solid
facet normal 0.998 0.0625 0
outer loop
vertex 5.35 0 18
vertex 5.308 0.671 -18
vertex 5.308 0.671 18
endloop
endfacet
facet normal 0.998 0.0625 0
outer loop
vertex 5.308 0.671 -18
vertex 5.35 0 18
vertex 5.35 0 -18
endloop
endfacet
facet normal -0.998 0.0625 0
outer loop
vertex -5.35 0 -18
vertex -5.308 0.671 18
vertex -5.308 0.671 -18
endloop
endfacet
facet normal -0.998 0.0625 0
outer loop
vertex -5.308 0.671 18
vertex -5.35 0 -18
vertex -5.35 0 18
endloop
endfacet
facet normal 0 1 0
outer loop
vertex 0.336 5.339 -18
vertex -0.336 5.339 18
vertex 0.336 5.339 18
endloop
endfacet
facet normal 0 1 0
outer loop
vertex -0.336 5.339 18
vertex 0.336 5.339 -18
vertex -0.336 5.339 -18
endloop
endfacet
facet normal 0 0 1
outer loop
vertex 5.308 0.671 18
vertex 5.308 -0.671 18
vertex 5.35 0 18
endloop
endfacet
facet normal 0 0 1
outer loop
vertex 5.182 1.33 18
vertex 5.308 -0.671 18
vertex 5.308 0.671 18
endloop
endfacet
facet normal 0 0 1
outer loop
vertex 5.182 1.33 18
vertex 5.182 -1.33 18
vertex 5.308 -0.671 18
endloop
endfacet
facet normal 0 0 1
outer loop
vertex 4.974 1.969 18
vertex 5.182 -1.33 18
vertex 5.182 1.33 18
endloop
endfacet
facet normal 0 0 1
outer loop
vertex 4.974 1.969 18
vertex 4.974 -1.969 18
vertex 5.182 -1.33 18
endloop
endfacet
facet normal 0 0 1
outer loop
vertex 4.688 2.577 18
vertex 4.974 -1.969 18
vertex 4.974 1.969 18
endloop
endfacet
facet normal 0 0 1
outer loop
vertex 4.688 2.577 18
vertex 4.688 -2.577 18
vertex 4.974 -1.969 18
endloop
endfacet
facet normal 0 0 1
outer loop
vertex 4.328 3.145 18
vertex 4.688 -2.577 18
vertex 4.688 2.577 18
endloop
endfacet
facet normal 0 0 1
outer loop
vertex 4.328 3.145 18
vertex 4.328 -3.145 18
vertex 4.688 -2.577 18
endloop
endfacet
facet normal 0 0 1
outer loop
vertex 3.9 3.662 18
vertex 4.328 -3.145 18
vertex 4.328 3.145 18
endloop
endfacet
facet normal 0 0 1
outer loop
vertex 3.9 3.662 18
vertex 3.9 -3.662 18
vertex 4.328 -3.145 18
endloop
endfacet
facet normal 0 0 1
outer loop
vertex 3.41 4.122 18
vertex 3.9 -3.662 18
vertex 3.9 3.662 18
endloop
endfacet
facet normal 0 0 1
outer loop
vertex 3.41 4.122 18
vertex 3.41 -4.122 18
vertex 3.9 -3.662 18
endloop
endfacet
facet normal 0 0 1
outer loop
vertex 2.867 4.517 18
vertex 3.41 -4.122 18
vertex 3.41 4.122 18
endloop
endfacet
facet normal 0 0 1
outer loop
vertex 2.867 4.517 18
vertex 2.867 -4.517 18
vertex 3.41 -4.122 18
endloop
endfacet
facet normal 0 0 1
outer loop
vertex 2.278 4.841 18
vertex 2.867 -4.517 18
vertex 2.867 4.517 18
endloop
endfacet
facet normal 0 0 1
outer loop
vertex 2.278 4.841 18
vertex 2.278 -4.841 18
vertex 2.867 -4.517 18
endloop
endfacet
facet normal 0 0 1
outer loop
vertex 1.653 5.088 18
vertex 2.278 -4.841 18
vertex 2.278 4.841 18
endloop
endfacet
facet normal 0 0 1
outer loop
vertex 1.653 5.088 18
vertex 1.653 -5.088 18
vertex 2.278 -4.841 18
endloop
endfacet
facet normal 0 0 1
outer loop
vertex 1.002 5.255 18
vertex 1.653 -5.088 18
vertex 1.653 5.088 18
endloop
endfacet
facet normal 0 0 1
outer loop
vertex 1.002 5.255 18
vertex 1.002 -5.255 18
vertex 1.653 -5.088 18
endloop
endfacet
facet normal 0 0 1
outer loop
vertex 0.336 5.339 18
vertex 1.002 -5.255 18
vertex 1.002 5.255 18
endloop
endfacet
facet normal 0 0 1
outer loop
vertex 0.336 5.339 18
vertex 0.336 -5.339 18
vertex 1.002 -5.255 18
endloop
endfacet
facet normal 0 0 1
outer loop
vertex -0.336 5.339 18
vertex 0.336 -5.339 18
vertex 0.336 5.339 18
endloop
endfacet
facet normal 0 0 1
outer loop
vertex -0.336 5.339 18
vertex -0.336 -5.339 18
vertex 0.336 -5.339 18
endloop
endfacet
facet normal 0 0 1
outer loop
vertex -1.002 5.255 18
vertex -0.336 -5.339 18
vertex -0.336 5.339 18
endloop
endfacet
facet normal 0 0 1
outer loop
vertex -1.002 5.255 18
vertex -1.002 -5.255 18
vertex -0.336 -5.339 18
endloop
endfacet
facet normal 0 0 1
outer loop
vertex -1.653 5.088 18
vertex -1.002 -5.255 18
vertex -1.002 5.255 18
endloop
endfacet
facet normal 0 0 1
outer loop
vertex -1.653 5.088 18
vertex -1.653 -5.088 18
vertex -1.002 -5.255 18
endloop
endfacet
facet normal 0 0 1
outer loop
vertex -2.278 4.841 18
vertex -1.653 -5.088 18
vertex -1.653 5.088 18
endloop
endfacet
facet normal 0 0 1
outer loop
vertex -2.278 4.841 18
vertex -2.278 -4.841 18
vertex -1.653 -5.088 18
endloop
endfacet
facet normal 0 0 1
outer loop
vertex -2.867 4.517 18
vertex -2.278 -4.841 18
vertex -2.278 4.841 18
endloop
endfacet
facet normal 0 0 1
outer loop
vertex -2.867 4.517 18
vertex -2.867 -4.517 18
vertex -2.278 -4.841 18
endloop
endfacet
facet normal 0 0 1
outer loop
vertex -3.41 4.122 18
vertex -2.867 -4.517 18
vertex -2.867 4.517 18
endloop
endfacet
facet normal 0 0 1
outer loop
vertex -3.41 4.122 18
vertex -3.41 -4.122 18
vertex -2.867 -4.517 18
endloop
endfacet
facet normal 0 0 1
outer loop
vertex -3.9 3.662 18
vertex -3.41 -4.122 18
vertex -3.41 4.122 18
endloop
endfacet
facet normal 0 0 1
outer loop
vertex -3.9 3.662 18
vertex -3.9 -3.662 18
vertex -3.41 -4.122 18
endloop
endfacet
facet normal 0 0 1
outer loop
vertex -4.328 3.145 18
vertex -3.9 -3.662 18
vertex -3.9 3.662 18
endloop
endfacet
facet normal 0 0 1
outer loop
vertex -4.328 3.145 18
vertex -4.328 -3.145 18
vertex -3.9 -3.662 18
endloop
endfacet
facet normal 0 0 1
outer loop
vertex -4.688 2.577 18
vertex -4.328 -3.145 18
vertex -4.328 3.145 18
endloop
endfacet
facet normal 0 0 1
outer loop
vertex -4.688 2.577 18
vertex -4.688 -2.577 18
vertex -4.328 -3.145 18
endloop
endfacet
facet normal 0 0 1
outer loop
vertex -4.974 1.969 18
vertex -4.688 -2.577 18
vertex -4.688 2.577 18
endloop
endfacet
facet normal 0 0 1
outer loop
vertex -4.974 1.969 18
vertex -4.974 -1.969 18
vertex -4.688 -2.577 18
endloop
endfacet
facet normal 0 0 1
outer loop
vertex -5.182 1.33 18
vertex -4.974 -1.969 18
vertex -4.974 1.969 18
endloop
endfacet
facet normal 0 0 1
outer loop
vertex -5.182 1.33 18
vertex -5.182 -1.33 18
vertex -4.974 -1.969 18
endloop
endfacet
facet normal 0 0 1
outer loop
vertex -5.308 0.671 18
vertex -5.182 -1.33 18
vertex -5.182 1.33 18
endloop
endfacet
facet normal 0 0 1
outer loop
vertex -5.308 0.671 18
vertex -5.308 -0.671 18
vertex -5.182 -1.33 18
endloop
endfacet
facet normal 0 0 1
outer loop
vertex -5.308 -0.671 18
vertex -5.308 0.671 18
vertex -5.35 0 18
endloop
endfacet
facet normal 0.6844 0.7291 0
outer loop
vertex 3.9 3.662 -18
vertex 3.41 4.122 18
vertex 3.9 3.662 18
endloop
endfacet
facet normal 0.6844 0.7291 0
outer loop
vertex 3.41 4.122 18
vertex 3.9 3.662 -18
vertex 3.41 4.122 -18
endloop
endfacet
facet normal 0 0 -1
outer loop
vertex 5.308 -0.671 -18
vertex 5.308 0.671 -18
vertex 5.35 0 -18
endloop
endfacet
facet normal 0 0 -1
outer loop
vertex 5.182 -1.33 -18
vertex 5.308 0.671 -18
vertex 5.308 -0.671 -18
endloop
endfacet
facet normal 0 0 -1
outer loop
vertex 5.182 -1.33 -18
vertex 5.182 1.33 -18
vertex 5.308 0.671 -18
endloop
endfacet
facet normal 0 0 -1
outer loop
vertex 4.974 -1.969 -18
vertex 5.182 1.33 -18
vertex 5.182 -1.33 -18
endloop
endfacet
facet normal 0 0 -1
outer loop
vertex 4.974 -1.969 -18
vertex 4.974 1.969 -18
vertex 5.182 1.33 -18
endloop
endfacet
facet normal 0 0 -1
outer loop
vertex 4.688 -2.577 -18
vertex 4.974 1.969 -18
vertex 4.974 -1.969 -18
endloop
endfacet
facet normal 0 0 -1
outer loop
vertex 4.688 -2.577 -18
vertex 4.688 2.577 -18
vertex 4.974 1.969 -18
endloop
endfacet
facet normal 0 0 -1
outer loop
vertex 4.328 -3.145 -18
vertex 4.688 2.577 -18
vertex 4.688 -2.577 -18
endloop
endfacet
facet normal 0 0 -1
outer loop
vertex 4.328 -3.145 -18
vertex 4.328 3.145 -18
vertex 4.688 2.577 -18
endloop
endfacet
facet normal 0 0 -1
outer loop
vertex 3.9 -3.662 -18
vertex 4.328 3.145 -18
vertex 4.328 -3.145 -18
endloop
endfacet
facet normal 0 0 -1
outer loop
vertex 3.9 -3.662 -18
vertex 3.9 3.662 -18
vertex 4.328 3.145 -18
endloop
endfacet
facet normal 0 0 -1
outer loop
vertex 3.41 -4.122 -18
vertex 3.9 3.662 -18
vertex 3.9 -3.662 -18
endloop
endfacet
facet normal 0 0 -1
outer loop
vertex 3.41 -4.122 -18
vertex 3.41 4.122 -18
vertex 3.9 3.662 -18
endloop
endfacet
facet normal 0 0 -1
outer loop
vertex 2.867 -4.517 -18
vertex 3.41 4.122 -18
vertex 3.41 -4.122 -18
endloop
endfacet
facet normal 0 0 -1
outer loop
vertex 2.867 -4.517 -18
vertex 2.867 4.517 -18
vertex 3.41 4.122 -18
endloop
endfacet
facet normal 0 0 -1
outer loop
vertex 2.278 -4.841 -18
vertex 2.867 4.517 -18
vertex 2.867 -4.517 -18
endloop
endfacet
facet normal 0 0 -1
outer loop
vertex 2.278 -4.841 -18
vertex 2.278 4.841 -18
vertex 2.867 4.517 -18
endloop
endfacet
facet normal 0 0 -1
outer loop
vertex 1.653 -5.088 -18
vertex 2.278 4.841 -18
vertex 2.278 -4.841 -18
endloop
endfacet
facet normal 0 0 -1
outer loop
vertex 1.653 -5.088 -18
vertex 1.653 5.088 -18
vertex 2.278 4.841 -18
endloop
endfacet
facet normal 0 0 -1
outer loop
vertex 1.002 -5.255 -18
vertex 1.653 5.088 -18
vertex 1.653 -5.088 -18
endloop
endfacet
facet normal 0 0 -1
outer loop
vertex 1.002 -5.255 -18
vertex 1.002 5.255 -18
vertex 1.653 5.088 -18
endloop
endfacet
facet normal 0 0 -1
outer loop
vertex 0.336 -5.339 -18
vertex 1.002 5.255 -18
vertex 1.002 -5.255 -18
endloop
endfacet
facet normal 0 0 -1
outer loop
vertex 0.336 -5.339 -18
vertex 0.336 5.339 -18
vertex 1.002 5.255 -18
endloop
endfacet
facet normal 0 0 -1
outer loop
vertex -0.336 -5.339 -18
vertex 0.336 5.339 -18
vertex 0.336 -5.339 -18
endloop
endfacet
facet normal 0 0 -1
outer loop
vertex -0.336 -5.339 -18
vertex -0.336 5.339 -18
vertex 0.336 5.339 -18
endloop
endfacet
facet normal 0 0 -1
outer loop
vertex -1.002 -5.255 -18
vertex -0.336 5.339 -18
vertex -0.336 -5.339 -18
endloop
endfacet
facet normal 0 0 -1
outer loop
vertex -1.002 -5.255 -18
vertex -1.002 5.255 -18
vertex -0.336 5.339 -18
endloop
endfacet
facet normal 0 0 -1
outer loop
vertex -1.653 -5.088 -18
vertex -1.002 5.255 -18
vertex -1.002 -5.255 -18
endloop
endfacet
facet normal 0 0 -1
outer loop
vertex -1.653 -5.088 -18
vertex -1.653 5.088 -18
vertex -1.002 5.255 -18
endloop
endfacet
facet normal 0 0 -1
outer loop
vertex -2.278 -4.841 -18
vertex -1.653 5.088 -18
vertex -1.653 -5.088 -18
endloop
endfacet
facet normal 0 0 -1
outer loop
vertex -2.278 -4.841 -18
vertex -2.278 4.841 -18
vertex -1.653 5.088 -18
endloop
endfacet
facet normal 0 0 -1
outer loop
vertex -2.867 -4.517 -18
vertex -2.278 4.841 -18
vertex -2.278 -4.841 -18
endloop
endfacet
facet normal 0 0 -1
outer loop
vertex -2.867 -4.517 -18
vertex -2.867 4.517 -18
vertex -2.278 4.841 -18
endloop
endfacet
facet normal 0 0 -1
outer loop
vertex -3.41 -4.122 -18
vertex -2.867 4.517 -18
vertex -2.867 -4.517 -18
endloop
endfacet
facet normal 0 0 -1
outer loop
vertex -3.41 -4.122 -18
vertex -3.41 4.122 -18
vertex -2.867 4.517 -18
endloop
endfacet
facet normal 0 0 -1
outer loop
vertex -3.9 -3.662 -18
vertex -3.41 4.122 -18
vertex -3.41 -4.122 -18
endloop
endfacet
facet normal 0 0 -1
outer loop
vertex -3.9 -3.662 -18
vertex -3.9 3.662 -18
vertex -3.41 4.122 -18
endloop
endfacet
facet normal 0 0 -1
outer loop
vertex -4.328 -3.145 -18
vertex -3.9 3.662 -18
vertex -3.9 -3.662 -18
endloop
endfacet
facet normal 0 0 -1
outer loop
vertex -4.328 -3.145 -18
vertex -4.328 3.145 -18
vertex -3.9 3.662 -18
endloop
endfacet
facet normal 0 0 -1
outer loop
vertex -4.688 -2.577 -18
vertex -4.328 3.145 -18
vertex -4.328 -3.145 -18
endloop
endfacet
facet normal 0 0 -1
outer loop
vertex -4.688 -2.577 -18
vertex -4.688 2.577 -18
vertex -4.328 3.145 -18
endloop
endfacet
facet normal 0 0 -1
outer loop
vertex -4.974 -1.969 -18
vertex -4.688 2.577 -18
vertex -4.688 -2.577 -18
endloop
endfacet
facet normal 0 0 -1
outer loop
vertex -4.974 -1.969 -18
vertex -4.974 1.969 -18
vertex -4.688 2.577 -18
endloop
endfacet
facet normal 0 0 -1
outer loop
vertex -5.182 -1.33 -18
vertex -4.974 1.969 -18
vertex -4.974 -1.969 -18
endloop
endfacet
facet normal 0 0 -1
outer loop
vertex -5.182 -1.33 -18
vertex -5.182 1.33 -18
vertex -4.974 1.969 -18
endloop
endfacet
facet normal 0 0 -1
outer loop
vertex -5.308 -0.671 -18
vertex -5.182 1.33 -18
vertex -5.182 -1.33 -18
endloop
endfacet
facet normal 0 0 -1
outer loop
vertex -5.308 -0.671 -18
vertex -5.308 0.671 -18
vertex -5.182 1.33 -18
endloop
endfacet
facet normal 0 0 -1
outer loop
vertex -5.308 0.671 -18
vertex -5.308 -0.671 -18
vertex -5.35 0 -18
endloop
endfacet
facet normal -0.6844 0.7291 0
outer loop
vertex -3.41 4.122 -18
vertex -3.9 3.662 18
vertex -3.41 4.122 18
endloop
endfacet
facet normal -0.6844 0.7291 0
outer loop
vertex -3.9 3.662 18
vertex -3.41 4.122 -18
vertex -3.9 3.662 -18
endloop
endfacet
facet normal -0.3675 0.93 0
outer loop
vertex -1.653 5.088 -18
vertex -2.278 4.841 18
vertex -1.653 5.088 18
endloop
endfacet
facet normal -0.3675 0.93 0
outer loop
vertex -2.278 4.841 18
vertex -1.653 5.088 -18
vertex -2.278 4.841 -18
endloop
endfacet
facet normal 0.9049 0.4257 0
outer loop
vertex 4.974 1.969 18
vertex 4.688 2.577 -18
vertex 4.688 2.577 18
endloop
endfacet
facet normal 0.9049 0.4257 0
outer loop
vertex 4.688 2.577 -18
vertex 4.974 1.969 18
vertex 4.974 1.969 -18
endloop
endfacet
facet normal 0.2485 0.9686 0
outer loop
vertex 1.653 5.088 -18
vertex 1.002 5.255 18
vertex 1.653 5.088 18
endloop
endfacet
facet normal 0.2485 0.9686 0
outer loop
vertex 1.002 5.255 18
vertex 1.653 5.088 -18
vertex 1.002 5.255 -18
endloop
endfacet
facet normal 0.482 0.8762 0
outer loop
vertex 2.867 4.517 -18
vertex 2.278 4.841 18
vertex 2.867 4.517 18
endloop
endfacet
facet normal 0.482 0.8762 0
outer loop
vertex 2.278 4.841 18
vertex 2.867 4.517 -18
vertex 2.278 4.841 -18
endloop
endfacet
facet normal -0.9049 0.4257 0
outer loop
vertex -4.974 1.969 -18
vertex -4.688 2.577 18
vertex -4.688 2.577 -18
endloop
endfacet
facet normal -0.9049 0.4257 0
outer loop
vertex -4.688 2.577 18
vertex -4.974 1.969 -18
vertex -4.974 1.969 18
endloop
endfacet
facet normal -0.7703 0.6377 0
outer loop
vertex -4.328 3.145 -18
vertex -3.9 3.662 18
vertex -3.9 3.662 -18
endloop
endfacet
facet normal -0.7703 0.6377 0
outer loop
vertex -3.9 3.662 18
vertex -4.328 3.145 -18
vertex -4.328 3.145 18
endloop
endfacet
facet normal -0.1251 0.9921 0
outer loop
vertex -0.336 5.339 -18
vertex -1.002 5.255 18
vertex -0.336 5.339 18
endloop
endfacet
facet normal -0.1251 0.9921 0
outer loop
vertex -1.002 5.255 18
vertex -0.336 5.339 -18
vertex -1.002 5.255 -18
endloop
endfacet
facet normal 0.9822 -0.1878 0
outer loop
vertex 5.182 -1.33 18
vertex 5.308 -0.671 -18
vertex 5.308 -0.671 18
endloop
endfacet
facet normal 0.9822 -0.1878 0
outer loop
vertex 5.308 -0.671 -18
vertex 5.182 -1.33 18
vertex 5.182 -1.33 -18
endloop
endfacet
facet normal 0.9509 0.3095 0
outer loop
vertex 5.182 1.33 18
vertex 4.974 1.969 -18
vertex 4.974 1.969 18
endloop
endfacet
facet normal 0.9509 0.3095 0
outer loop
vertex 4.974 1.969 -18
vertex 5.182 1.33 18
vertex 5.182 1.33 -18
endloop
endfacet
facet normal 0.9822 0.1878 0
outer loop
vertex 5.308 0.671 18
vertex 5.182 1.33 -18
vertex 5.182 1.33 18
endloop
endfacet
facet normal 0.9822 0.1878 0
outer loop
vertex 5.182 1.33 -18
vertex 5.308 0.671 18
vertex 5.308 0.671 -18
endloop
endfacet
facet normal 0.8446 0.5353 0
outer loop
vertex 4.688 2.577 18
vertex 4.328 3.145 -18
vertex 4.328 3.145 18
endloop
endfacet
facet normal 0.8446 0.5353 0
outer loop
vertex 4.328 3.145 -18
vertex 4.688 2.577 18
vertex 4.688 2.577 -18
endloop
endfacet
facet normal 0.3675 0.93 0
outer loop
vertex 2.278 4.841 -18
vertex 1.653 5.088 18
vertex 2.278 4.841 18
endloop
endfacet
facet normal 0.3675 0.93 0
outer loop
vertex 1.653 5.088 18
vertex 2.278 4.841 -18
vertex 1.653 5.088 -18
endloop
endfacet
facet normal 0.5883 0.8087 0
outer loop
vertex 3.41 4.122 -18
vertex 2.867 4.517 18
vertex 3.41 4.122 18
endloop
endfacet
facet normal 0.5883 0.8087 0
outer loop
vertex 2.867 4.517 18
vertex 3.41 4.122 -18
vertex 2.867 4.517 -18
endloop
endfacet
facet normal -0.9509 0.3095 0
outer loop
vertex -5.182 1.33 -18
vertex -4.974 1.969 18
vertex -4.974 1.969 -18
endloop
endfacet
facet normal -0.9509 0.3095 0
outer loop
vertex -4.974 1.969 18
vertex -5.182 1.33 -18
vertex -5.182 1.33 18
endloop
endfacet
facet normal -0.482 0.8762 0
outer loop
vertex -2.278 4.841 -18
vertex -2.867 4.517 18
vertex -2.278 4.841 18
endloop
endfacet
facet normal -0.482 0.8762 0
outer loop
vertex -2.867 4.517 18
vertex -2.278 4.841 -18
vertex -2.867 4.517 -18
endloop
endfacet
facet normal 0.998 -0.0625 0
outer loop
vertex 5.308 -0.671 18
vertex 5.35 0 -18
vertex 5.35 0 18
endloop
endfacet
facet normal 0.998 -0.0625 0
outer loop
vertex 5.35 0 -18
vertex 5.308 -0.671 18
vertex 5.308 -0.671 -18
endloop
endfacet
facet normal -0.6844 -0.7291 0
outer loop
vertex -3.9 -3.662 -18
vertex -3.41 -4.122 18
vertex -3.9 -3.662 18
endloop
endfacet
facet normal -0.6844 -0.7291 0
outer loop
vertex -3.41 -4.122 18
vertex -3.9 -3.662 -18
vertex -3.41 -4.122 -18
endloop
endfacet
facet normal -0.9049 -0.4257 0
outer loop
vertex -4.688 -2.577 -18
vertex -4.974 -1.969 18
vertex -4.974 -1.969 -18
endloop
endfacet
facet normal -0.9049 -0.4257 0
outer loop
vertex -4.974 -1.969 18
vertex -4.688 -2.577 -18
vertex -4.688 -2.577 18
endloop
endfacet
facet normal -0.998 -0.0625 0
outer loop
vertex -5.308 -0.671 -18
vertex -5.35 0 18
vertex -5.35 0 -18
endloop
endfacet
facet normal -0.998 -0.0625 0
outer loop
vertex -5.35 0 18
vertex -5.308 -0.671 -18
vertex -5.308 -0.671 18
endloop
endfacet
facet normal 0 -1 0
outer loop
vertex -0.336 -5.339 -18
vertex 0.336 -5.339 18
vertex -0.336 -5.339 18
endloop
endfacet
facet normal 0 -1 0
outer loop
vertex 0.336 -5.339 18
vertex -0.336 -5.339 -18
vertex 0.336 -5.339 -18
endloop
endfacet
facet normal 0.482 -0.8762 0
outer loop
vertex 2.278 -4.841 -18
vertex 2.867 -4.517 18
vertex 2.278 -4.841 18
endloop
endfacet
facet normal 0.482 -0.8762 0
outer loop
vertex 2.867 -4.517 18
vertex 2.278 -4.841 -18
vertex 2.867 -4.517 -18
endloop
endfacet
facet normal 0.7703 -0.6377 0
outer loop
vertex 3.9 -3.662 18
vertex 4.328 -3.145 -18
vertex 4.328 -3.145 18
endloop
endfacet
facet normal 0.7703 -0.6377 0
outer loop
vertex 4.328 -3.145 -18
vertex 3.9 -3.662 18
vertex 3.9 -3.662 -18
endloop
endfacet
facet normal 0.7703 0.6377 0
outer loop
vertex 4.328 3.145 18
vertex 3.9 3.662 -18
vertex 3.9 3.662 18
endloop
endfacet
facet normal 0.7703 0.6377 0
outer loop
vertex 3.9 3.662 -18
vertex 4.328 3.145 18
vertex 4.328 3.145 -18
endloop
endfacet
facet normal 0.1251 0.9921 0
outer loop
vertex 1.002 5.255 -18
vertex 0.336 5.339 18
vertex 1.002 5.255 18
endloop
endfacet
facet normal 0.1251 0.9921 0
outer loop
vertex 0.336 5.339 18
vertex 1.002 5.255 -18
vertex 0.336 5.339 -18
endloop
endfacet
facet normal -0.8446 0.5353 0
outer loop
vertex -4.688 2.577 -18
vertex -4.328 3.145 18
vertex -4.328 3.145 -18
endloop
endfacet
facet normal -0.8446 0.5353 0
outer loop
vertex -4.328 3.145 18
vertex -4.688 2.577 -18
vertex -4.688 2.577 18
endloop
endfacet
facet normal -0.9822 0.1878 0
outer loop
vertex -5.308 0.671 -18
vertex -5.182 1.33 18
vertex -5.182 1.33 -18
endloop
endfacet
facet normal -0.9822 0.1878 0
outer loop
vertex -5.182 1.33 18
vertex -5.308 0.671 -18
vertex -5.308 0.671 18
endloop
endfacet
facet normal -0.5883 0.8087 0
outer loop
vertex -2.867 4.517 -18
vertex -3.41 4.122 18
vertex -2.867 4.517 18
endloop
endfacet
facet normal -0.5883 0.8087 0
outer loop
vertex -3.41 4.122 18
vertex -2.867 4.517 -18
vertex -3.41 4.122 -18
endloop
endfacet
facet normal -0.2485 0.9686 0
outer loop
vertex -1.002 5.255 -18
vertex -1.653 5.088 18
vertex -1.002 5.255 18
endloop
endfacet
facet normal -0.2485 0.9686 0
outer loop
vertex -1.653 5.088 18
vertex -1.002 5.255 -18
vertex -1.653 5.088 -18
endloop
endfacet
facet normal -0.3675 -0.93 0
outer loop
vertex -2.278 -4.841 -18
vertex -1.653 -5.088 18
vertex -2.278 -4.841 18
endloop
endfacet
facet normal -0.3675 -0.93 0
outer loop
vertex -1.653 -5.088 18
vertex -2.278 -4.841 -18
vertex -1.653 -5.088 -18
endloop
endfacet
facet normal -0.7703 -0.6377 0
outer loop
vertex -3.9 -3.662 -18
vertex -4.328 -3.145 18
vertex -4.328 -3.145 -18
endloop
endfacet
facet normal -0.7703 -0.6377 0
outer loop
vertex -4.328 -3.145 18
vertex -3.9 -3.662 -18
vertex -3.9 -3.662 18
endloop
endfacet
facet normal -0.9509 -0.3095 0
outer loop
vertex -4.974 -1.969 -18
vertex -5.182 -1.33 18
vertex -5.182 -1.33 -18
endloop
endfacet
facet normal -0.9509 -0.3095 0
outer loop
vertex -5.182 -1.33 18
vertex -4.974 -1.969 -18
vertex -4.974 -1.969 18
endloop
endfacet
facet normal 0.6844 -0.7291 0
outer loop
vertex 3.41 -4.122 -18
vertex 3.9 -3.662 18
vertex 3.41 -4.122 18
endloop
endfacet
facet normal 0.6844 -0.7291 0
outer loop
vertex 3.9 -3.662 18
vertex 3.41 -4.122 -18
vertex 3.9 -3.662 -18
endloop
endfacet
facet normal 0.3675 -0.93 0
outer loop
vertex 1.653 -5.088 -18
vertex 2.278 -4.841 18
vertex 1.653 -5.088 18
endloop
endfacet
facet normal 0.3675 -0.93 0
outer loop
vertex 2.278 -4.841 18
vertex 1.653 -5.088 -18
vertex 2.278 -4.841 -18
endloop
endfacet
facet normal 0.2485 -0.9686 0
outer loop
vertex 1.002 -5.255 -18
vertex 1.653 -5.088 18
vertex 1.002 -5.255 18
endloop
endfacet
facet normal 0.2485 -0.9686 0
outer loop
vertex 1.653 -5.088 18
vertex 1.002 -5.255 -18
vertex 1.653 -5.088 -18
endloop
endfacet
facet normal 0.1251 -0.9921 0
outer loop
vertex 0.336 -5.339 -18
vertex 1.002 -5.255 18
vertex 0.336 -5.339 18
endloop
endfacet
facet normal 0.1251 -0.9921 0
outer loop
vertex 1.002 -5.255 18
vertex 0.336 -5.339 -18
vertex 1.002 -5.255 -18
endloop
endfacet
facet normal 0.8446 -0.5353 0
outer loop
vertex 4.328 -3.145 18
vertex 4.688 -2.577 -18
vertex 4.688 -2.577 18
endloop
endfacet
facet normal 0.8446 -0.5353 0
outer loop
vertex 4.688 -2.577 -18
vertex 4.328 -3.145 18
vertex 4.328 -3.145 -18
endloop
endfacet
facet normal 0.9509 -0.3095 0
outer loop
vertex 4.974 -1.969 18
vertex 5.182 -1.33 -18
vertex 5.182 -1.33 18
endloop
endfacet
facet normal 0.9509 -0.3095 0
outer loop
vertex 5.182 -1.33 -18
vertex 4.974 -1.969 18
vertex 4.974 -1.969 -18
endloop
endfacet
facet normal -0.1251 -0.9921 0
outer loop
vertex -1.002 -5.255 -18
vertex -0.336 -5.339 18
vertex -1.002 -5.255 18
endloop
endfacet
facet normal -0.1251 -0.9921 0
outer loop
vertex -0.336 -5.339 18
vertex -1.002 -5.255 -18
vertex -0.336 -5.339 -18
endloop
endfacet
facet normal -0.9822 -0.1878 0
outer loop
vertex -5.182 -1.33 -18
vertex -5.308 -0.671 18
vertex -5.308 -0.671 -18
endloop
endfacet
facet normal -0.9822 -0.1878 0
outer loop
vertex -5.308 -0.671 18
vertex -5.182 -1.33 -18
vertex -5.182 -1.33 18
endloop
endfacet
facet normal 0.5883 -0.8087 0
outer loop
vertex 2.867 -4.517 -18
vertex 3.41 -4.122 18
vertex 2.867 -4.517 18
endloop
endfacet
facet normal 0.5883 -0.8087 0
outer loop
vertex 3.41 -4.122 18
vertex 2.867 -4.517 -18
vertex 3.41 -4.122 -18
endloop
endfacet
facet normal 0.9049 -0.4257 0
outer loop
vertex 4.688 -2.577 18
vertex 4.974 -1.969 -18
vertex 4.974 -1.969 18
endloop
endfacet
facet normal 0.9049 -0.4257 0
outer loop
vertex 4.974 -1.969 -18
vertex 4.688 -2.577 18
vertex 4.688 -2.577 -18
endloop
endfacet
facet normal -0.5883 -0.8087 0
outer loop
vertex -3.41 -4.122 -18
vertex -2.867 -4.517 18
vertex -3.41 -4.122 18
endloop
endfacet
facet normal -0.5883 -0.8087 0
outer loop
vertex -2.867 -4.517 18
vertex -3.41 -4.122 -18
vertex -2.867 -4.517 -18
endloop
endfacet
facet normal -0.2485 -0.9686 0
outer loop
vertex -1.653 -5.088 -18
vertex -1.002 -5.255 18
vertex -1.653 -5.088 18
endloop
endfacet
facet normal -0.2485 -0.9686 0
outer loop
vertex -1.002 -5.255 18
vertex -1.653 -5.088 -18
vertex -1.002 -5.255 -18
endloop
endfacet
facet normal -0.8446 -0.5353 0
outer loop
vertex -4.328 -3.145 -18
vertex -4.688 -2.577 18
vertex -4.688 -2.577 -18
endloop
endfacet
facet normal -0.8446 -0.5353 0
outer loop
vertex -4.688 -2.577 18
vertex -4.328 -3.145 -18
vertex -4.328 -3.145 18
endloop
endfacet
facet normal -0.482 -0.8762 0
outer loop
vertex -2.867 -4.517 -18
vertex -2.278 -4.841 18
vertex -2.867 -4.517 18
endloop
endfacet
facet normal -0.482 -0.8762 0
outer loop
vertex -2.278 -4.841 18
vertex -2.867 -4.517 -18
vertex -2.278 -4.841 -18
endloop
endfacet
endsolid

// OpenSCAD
$fn = 50;


difference() {
	union() {
		translate(v = [0, 0, -18.0000000000]) {
			cylinder(h = 36, r = 5.3500000000);
		}
	}
	union() {
		translate(v = [0, 0, -100.0000000000]) {
			cylinder(h = 200, r = 0);
		}
	}
}
